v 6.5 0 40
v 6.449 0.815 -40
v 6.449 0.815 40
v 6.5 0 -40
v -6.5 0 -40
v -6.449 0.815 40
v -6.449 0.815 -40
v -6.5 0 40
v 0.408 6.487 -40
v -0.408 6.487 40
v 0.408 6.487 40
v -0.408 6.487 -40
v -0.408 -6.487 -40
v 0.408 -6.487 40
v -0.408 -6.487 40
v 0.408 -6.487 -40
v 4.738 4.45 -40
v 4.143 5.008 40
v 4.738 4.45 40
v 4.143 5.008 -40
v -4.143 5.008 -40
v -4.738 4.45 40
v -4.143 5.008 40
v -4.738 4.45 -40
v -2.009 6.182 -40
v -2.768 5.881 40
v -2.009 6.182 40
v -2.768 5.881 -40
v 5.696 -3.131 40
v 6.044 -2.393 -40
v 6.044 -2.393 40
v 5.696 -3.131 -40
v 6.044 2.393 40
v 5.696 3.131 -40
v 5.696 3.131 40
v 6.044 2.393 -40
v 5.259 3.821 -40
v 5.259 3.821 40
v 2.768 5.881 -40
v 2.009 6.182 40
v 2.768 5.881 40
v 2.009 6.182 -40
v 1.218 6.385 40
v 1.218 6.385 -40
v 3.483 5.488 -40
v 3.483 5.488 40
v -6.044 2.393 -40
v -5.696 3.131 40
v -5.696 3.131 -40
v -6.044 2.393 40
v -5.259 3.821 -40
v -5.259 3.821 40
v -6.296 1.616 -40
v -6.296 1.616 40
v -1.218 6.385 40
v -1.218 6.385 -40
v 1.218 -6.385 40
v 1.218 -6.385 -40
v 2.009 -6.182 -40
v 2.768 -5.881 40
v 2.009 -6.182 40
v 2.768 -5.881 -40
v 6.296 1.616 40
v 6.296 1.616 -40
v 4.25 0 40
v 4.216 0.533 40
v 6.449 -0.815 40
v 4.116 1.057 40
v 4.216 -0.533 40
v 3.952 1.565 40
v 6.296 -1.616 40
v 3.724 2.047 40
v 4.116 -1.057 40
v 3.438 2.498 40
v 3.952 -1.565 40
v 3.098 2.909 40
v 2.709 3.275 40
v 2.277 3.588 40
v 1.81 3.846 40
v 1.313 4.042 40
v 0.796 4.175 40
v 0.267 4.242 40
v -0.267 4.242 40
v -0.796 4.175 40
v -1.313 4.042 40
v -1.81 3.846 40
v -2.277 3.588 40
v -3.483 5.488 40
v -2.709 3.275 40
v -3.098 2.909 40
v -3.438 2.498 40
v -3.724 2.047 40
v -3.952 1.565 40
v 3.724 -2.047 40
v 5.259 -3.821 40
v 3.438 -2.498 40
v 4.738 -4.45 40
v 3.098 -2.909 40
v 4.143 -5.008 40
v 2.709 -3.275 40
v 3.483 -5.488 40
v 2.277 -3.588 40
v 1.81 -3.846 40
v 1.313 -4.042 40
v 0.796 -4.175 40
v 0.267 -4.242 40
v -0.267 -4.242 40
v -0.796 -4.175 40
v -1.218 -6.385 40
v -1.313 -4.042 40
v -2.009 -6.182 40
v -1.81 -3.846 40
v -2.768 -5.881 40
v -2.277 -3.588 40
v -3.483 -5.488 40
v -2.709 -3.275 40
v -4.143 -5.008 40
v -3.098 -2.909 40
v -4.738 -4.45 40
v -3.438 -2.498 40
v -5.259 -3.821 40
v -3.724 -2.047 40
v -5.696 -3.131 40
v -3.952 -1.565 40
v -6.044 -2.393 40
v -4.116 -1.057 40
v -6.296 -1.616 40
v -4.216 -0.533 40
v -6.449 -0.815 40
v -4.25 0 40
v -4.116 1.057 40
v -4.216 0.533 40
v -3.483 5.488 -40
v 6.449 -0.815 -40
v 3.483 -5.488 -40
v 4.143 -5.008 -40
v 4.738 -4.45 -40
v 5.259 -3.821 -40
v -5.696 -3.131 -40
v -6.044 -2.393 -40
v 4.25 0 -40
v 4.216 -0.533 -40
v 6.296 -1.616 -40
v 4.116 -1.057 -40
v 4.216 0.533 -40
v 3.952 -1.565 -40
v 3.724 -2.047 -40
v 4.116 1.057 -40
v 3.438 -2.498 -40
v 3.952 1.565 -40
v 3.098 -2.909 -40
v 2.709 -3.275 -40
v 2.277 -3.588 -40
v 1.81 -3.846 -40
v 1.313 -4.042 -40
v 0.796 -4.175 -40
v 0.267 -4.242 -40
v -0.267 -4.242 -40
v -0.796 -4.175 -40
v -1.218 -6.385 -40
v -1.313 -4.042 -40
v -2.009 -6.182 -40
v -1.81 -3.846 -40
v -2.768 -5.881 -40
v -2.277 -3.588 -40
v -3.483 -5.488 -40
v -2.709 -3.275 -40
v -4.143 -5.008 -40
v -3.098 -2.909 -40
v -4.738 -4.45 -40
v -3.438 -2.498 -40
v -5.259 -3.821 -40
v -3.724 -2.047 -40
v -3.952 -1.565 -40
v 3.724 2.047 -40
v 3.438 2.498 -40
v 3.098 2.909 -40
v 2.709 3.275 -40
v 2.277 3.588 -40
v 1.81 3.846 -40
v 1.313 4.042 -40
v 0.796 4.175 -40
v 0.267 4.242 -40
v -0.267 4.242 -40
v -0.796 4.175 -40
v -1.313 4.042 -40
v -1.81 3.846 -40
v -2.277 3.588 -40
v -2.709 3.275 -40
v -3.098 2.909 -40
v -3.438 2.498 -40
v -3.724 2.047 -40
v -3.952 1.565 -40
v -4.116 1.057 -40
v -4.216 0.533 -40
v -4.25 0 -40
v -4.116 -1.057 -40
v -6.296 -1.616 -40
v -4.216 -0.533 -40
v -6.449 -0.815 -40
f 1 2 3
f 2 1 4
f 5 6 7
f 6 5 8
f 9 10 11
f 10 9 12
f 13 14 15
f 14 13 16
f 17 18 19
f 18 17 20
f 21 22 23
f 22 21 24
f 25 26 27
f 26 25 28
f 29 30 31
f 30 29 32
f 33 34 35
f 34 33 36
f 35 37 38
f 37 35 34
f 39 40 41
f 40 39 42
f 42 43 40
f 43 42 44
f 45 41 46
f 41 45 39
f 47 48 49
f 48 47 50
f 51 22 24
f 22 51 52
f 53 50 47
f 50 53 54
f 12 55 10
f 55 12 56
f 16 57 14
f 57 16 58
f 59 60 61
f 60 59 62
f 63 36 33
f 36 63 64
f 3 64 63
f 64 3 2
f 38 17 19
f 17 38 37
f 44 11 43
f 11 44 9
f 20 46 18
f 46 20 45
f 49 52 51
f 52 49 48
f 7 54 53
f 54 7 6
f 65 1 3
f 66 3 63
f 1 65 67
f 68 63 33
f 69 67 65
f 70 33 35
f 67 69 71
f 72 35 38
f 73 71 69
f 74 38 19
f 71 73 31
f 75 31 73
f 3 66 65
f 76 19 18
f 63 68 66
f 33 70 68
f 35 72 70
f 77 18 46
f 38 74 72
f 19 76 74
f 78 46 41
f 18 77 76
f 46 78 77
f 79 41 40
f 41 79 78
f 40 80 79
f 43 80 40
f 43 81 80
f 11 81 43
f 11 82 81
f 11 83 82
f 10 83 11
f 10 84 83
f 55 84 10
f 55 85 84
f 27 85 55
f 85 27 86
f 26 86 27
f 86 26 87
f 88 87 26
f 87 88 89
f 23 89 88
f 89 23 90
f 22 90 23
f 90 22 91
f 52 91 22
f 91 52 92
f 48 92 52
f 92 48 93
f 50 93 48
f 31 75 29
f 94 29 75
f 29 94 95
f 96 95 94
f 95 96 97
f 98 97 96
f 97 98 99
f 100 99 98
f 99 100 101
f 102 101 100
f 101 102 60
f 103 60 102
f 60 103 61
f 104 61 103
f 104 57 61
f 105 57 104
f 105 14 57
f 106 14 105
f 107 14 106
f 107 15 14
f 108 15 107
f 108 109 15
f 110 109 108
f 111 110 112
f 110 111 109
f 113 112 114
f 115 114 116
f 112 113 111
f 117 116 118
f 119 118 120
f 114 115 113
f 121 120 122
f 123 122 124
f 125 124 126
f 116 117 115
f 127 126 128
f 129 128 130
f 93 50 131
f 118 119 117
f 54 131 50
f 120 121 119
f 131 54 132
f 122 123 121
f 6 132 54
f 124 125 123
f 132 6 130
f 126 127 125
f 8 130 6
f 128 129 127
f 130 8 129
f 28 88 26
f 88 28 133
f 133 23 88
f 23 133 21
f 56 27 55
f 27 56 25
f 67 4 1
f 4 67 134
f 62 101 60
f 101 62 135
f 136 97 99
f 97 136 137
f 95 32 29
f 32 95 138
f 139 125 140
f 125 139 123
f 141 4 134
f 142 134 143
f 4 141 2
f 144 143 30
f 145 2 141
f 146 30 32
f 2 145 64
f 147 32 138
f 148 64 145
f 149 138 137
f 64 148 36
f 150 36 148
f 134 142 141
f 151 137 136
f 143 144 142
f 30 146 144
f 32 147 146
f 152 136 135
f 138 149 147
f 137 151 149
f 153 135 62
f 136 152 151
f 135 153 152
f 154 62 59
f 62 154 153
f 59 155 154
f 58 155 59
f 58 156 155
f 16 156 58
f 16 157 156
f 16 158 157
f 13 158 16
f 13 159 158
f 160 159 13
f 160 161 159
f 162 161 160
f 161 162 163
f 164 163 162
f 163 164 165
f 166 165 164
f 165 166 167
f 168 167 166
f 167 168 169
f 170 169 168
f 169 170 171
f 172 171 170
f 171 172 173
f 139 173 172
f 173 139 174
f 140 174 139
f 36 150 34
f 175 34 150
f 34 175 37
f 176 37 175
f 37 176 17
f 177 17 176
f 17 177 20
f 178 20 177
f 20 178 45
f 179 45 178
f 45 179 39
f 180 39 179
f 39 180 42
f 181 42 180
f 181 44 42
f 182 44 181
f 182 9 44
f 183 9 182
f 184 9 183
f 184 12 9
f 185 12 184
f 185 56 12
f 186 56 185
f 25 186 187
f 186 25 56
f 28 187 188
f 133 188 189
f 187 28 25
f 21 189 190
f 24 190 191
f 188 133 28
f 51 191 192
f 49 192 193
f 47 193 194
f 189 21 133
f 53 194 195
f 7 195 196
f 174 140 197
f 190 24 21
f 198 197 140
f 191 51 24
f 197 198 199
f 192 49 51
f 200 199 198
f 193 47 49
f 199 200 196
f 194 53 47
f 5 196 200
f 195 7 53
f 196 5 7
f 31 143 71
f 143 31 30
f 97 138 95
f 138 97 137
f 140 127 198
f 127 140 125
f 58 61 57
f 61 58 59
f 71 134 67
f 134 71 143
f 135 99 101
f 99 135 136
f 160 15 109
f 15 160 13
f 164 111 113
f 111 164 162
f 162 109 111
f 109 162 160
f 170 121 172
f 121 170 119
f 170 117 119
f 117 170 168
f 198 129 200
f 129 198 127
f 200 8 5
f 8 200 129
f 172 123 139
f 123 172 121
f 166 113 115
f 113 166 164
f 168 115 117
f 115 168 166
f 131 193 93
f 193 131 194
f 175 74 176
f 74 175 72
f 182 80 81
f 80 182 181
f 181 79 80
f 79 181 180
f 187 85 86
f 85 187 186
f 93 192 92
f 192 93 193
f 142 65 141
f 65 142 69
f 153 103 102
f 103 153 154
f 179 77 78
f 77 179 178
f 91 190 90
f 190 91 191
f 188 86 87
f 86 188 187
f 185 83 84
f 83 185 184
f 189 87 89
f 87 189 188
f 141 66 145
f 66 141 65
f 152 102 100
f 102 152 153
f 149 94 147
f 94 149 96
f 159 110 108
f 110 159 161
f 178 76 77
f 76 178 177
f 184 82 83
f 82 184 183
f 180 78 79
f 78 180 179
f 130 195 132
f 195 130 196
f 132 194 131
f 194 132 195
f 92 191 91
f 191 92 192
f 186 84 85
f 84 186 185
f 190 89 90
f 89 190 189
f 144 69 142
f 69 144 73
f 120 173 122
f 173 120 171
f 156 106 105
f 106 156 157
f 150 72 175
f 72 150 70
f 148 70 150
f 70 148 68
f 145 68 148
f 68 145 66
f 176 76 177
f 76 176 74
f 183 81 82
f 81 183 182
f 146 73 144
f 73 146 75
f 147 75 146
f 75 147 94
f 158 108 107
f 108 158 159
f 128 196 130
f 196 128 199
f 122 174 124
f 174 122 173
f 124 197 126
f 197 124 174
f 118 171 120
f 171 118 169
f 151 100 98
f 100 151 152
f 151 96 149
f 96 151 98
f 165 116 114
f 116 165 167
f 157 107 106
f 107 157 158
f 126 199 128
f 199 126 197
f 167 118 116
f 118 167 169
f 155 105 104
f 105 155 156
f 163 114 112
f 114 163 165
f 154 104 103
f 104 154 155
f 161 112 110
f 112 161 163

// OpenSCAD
$fn = 50;


difference() {
	union() {
		translate(v = [0, 0, -40.0000000000]) {
			cylinder(h = 80, r = 6.5000000000);
		}
	}
	union() {
		translate(v = [0, 0, -100.0000000000]) {
			cylinder(h = 200, r = 4.2500000000);
		}
	}
}
